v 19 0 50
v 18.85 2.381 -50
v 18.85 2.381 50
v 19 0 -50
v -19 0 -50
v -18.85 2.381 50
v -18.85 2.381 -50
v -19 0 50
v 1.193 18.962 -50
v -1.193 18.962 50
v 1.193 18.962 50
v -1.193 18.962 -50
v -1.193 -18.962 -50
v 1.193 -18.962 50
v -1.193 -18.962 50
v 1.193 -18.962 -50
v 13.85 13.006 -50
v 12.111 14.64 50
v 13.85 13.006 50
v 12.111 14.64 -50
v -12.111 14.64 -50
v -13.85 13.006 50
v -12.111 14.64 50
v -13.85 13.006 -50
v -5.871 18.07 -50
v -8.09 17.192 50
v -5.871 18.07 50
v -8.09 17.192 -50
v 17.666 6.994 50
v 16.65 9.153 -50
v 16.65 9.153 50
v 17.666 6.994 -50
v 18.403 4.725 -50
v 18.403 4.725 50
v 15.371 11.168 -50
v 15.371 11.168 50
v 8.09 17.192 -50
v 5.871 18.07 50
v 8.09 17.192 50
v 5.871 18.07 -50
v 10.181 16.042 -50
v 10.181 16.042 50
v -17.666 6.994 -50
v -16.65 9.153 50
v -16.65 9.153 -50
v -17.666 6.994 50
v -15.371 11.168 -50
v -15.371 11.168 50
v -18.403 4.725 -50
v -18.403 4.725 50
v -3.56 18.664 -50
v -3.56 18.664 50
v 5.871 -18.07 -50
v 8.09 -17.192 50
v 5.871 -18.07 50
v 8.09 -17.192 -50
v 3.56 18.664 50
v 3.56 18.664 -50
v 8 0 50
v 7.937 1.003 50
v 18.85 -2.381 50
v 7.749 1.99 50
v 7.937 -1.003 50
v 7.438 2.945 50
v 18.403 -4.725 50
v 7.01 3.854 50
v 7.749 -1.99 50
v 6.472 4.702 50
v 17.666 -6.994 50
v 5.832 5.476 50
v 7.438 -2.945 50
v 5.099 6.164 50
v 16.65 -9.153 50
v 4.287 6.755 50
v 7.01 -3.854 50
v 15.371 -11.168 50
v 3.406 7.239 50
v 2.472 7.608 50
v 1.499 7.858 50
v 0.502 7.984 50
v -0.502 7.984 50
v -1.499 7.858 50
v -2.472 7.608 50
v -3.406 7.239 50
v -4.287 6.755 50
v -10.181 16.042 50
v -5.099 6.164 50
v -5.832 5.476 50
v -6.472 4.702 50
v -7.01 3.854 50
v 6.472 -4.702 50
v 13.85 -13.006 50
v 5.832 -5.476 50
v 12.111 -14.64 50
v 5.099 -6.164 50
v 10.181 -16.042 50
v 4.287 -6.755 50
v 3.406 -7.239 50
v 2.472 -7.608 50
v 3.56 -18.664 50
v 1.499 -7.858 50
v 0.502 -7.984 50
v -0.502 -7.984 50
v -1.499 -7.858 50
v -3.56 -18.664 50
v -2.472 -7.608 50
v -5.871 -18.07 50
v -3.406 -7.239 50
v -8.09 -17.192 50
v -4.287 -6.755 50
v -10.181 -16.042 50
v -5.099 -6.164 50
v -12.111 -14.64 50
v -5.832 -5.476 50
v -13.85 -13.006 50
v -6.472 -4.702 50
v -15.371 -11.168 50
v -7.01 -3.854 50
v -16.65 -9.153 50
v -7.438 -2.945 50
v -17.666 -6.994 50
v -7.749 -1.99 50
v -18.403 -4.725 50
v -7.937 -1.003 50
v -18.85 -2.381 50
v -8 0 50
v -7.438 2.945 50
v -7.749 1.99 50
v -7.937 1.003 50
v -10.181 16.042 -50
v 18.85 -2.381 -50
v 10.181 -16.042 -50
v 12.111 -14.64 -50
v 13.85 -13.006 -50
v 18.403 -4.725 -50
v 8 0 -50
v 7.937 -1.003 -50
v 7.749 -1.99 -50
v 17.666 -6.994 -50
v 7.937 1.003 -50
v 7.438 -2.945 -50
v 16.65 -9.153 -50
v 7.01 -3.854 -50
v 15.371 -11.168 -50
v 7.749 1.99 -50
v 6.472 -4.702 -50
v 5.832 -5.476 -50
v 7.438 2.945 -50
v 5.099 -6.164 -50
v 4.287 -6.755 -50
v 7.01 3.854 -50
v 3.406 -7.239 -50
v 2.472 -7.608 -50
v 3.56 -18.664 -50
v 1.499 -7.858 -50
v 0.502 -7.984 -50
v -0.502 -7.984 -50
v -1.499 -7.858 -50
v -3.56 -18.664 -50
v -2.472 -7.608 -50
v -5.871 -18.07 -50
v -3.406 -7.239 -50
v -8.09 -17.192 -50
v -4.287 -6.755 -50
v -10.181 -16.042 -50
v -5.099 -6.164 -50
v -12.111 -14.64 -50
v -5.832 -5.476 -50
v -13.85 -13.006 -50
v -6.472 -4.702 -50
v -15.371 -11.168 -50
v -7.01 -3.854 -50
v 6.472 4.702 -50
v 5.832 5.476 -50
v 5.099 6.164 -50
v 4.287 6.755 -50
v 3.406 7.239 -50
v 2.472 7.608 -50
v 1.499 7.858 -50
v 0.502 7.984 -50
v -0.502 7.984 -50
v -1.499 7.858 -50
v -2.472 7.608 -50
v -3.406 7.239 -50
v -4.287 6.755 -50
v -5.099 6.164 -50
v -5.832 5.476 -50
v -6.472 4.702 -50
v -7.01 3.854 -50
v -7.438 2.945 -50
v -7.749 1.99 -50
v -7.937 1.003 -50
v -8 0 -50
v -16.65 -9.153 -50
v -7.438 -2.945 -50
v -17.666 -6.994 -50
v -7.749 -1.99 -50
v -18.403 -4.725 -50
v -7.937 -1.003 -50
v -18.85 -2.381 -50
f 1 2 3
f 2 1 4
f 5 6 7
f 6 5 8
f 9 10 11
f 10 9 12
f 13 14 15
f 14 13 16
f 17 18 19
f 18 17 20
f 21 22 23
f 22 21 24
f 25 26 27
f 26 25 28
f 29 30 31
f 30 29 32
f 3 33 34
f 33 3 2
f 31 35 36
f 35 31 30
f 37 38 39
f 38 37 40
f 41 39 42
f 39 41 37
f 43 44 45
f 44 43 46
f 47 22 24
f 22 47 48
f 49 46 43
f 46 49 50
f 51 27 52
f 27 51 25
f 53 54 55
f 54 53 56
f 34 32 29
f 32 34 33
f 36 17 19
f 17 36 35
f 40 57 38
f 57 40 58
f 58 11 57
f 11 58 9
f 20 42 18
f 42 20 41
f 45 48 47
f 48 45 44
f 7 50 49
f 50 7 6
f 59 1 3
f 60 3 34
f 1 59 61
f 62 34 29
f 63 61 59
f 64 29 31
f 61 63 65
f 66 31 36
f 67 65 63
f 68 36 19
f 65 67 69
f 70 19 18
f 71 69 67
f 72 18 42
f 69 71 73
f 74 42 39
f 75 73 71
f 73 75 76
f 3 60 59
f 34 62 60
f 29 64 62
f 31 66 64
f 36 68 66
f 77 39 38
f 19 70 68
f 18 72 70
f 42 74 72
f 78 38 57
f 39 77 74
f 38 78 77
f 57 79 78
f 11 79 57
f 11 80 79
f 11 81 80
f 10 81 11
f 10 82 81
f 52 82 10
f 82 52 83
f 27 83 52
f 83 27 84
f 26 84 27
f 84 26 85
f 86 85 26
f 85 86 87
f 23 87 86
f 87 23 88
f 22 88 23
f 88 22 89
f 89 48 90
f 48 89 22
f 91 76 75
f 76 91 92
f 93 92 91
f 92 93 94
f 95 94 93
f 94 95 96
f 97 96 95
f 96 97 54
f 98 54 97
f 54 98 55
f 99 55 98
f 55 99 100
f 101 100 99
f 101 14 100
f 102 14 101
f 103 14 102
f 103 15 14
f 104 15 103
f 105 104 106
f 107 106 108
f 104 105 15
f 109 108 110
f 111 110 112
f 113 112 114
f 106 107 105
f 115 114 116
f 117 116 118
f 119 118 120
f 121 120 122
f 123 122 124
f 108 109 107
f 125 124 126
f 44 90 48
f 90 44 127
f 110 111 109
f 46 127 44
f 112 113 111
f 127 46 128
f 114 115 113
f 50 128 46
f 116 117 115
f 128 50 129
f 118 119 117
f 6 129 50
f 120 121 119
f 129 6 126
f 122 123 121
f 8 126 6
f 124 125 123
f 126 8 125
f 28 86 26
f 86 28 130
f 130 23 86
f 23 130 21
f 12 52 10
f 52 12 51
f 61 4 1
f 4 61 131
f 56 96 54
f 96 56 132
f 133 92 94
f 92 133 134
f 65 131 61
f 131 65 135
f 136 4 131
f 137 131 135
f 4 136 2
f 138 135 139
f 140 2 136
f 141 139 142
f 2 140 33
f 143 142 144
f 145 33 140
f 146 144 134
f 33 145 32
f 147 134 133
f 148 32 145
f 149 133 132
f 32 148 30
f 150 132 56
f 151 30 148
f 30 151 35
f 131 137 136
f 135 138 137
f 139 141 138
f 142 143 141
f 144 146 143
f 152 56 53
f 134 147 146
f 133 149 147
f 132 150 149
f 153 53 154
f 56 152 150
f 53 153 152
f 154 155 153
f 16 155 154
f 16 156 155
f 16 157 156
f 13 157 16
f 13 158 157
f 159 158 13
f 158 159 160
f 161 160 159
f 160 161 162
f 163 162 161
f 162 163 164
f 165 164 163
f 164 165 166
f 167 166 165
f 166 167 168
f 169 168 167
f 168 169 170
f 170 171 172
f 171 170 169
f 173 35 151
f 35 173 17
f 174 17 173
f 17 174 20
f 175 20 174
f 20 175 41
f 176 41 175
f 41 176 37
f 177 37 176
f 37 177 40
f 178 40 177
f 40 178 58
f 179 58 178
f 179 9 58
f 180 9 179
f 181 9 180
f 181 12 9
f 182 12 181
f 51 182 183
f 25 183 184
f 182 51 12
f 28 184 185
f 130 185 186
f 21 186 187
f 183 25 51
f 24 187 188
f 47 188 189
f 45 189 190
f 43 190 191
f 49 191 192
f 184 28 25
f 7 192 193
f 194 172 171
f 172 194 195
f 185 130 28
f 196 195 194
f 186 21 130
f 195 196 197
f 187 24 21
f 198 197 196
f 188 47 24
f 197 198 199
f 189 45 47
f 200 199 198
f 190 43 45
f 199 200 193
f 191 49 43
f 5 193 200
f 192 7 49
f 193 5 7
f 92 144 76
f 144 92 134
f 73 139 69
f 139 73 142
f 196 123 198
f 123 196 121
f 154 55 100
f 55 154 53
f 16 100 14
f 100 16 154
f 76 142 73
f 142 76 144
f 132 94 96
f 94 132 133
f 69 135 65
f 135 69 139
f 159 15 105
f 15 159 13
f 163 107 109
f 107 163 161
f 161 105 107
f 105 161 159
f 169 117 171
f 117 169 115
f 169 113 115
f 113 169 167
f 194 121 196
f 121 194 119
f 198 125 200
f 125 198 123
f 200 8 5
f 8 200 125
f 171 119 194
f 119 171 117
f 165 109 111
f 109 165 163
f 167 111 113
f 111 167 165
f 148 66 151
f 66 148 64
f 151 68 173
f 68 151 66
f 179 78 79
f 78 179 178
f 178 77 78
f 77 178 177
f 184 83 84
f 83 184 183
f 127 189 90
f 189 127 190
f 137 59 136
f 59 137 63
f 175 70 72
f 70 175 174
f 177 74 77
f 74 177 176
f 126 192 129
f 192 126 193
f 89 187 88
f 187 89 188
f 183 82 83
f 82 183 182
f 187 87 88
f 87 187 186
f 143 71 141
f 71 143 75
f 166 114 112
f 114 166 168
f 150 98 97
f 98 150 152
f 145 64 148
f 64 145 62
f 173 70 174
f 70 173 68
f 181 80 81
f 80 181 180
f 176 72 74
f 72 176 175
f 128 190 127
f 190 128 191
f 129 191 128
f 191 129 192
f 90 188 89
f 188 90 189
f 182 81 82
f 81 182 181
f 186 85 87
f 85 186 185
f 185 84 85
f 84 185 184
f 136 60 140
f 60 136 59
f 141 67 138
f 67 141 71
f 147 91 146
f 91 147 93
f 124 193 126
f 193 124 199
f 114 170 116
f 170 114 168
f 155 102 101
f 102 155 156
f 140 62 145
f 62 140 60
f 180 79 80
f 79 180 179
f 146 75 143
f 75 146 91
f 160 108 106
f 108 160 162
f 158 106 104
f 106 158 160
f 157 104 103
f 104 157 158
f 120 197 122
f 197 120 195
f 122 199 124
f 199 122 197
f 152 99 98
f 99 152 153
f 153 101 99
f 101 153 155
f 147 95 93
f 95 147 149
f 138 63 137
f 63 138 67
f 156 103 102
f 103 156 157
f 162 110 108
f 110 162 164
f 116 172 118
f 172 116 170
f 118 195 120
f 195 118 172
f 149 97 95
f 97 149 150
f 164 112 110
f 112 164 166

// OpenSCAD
$fn = 50;


difference() {
	union() {
		translate(v = [0, 0, -50.0000000000]) {
			cylinder(h = 100, r = 19.0000000000);
		}
	}
	union() {
		translate(v = [0, 0, -100.0000000000]) {
			cylinder(h = 200, r = 8);
		}
	}
}
